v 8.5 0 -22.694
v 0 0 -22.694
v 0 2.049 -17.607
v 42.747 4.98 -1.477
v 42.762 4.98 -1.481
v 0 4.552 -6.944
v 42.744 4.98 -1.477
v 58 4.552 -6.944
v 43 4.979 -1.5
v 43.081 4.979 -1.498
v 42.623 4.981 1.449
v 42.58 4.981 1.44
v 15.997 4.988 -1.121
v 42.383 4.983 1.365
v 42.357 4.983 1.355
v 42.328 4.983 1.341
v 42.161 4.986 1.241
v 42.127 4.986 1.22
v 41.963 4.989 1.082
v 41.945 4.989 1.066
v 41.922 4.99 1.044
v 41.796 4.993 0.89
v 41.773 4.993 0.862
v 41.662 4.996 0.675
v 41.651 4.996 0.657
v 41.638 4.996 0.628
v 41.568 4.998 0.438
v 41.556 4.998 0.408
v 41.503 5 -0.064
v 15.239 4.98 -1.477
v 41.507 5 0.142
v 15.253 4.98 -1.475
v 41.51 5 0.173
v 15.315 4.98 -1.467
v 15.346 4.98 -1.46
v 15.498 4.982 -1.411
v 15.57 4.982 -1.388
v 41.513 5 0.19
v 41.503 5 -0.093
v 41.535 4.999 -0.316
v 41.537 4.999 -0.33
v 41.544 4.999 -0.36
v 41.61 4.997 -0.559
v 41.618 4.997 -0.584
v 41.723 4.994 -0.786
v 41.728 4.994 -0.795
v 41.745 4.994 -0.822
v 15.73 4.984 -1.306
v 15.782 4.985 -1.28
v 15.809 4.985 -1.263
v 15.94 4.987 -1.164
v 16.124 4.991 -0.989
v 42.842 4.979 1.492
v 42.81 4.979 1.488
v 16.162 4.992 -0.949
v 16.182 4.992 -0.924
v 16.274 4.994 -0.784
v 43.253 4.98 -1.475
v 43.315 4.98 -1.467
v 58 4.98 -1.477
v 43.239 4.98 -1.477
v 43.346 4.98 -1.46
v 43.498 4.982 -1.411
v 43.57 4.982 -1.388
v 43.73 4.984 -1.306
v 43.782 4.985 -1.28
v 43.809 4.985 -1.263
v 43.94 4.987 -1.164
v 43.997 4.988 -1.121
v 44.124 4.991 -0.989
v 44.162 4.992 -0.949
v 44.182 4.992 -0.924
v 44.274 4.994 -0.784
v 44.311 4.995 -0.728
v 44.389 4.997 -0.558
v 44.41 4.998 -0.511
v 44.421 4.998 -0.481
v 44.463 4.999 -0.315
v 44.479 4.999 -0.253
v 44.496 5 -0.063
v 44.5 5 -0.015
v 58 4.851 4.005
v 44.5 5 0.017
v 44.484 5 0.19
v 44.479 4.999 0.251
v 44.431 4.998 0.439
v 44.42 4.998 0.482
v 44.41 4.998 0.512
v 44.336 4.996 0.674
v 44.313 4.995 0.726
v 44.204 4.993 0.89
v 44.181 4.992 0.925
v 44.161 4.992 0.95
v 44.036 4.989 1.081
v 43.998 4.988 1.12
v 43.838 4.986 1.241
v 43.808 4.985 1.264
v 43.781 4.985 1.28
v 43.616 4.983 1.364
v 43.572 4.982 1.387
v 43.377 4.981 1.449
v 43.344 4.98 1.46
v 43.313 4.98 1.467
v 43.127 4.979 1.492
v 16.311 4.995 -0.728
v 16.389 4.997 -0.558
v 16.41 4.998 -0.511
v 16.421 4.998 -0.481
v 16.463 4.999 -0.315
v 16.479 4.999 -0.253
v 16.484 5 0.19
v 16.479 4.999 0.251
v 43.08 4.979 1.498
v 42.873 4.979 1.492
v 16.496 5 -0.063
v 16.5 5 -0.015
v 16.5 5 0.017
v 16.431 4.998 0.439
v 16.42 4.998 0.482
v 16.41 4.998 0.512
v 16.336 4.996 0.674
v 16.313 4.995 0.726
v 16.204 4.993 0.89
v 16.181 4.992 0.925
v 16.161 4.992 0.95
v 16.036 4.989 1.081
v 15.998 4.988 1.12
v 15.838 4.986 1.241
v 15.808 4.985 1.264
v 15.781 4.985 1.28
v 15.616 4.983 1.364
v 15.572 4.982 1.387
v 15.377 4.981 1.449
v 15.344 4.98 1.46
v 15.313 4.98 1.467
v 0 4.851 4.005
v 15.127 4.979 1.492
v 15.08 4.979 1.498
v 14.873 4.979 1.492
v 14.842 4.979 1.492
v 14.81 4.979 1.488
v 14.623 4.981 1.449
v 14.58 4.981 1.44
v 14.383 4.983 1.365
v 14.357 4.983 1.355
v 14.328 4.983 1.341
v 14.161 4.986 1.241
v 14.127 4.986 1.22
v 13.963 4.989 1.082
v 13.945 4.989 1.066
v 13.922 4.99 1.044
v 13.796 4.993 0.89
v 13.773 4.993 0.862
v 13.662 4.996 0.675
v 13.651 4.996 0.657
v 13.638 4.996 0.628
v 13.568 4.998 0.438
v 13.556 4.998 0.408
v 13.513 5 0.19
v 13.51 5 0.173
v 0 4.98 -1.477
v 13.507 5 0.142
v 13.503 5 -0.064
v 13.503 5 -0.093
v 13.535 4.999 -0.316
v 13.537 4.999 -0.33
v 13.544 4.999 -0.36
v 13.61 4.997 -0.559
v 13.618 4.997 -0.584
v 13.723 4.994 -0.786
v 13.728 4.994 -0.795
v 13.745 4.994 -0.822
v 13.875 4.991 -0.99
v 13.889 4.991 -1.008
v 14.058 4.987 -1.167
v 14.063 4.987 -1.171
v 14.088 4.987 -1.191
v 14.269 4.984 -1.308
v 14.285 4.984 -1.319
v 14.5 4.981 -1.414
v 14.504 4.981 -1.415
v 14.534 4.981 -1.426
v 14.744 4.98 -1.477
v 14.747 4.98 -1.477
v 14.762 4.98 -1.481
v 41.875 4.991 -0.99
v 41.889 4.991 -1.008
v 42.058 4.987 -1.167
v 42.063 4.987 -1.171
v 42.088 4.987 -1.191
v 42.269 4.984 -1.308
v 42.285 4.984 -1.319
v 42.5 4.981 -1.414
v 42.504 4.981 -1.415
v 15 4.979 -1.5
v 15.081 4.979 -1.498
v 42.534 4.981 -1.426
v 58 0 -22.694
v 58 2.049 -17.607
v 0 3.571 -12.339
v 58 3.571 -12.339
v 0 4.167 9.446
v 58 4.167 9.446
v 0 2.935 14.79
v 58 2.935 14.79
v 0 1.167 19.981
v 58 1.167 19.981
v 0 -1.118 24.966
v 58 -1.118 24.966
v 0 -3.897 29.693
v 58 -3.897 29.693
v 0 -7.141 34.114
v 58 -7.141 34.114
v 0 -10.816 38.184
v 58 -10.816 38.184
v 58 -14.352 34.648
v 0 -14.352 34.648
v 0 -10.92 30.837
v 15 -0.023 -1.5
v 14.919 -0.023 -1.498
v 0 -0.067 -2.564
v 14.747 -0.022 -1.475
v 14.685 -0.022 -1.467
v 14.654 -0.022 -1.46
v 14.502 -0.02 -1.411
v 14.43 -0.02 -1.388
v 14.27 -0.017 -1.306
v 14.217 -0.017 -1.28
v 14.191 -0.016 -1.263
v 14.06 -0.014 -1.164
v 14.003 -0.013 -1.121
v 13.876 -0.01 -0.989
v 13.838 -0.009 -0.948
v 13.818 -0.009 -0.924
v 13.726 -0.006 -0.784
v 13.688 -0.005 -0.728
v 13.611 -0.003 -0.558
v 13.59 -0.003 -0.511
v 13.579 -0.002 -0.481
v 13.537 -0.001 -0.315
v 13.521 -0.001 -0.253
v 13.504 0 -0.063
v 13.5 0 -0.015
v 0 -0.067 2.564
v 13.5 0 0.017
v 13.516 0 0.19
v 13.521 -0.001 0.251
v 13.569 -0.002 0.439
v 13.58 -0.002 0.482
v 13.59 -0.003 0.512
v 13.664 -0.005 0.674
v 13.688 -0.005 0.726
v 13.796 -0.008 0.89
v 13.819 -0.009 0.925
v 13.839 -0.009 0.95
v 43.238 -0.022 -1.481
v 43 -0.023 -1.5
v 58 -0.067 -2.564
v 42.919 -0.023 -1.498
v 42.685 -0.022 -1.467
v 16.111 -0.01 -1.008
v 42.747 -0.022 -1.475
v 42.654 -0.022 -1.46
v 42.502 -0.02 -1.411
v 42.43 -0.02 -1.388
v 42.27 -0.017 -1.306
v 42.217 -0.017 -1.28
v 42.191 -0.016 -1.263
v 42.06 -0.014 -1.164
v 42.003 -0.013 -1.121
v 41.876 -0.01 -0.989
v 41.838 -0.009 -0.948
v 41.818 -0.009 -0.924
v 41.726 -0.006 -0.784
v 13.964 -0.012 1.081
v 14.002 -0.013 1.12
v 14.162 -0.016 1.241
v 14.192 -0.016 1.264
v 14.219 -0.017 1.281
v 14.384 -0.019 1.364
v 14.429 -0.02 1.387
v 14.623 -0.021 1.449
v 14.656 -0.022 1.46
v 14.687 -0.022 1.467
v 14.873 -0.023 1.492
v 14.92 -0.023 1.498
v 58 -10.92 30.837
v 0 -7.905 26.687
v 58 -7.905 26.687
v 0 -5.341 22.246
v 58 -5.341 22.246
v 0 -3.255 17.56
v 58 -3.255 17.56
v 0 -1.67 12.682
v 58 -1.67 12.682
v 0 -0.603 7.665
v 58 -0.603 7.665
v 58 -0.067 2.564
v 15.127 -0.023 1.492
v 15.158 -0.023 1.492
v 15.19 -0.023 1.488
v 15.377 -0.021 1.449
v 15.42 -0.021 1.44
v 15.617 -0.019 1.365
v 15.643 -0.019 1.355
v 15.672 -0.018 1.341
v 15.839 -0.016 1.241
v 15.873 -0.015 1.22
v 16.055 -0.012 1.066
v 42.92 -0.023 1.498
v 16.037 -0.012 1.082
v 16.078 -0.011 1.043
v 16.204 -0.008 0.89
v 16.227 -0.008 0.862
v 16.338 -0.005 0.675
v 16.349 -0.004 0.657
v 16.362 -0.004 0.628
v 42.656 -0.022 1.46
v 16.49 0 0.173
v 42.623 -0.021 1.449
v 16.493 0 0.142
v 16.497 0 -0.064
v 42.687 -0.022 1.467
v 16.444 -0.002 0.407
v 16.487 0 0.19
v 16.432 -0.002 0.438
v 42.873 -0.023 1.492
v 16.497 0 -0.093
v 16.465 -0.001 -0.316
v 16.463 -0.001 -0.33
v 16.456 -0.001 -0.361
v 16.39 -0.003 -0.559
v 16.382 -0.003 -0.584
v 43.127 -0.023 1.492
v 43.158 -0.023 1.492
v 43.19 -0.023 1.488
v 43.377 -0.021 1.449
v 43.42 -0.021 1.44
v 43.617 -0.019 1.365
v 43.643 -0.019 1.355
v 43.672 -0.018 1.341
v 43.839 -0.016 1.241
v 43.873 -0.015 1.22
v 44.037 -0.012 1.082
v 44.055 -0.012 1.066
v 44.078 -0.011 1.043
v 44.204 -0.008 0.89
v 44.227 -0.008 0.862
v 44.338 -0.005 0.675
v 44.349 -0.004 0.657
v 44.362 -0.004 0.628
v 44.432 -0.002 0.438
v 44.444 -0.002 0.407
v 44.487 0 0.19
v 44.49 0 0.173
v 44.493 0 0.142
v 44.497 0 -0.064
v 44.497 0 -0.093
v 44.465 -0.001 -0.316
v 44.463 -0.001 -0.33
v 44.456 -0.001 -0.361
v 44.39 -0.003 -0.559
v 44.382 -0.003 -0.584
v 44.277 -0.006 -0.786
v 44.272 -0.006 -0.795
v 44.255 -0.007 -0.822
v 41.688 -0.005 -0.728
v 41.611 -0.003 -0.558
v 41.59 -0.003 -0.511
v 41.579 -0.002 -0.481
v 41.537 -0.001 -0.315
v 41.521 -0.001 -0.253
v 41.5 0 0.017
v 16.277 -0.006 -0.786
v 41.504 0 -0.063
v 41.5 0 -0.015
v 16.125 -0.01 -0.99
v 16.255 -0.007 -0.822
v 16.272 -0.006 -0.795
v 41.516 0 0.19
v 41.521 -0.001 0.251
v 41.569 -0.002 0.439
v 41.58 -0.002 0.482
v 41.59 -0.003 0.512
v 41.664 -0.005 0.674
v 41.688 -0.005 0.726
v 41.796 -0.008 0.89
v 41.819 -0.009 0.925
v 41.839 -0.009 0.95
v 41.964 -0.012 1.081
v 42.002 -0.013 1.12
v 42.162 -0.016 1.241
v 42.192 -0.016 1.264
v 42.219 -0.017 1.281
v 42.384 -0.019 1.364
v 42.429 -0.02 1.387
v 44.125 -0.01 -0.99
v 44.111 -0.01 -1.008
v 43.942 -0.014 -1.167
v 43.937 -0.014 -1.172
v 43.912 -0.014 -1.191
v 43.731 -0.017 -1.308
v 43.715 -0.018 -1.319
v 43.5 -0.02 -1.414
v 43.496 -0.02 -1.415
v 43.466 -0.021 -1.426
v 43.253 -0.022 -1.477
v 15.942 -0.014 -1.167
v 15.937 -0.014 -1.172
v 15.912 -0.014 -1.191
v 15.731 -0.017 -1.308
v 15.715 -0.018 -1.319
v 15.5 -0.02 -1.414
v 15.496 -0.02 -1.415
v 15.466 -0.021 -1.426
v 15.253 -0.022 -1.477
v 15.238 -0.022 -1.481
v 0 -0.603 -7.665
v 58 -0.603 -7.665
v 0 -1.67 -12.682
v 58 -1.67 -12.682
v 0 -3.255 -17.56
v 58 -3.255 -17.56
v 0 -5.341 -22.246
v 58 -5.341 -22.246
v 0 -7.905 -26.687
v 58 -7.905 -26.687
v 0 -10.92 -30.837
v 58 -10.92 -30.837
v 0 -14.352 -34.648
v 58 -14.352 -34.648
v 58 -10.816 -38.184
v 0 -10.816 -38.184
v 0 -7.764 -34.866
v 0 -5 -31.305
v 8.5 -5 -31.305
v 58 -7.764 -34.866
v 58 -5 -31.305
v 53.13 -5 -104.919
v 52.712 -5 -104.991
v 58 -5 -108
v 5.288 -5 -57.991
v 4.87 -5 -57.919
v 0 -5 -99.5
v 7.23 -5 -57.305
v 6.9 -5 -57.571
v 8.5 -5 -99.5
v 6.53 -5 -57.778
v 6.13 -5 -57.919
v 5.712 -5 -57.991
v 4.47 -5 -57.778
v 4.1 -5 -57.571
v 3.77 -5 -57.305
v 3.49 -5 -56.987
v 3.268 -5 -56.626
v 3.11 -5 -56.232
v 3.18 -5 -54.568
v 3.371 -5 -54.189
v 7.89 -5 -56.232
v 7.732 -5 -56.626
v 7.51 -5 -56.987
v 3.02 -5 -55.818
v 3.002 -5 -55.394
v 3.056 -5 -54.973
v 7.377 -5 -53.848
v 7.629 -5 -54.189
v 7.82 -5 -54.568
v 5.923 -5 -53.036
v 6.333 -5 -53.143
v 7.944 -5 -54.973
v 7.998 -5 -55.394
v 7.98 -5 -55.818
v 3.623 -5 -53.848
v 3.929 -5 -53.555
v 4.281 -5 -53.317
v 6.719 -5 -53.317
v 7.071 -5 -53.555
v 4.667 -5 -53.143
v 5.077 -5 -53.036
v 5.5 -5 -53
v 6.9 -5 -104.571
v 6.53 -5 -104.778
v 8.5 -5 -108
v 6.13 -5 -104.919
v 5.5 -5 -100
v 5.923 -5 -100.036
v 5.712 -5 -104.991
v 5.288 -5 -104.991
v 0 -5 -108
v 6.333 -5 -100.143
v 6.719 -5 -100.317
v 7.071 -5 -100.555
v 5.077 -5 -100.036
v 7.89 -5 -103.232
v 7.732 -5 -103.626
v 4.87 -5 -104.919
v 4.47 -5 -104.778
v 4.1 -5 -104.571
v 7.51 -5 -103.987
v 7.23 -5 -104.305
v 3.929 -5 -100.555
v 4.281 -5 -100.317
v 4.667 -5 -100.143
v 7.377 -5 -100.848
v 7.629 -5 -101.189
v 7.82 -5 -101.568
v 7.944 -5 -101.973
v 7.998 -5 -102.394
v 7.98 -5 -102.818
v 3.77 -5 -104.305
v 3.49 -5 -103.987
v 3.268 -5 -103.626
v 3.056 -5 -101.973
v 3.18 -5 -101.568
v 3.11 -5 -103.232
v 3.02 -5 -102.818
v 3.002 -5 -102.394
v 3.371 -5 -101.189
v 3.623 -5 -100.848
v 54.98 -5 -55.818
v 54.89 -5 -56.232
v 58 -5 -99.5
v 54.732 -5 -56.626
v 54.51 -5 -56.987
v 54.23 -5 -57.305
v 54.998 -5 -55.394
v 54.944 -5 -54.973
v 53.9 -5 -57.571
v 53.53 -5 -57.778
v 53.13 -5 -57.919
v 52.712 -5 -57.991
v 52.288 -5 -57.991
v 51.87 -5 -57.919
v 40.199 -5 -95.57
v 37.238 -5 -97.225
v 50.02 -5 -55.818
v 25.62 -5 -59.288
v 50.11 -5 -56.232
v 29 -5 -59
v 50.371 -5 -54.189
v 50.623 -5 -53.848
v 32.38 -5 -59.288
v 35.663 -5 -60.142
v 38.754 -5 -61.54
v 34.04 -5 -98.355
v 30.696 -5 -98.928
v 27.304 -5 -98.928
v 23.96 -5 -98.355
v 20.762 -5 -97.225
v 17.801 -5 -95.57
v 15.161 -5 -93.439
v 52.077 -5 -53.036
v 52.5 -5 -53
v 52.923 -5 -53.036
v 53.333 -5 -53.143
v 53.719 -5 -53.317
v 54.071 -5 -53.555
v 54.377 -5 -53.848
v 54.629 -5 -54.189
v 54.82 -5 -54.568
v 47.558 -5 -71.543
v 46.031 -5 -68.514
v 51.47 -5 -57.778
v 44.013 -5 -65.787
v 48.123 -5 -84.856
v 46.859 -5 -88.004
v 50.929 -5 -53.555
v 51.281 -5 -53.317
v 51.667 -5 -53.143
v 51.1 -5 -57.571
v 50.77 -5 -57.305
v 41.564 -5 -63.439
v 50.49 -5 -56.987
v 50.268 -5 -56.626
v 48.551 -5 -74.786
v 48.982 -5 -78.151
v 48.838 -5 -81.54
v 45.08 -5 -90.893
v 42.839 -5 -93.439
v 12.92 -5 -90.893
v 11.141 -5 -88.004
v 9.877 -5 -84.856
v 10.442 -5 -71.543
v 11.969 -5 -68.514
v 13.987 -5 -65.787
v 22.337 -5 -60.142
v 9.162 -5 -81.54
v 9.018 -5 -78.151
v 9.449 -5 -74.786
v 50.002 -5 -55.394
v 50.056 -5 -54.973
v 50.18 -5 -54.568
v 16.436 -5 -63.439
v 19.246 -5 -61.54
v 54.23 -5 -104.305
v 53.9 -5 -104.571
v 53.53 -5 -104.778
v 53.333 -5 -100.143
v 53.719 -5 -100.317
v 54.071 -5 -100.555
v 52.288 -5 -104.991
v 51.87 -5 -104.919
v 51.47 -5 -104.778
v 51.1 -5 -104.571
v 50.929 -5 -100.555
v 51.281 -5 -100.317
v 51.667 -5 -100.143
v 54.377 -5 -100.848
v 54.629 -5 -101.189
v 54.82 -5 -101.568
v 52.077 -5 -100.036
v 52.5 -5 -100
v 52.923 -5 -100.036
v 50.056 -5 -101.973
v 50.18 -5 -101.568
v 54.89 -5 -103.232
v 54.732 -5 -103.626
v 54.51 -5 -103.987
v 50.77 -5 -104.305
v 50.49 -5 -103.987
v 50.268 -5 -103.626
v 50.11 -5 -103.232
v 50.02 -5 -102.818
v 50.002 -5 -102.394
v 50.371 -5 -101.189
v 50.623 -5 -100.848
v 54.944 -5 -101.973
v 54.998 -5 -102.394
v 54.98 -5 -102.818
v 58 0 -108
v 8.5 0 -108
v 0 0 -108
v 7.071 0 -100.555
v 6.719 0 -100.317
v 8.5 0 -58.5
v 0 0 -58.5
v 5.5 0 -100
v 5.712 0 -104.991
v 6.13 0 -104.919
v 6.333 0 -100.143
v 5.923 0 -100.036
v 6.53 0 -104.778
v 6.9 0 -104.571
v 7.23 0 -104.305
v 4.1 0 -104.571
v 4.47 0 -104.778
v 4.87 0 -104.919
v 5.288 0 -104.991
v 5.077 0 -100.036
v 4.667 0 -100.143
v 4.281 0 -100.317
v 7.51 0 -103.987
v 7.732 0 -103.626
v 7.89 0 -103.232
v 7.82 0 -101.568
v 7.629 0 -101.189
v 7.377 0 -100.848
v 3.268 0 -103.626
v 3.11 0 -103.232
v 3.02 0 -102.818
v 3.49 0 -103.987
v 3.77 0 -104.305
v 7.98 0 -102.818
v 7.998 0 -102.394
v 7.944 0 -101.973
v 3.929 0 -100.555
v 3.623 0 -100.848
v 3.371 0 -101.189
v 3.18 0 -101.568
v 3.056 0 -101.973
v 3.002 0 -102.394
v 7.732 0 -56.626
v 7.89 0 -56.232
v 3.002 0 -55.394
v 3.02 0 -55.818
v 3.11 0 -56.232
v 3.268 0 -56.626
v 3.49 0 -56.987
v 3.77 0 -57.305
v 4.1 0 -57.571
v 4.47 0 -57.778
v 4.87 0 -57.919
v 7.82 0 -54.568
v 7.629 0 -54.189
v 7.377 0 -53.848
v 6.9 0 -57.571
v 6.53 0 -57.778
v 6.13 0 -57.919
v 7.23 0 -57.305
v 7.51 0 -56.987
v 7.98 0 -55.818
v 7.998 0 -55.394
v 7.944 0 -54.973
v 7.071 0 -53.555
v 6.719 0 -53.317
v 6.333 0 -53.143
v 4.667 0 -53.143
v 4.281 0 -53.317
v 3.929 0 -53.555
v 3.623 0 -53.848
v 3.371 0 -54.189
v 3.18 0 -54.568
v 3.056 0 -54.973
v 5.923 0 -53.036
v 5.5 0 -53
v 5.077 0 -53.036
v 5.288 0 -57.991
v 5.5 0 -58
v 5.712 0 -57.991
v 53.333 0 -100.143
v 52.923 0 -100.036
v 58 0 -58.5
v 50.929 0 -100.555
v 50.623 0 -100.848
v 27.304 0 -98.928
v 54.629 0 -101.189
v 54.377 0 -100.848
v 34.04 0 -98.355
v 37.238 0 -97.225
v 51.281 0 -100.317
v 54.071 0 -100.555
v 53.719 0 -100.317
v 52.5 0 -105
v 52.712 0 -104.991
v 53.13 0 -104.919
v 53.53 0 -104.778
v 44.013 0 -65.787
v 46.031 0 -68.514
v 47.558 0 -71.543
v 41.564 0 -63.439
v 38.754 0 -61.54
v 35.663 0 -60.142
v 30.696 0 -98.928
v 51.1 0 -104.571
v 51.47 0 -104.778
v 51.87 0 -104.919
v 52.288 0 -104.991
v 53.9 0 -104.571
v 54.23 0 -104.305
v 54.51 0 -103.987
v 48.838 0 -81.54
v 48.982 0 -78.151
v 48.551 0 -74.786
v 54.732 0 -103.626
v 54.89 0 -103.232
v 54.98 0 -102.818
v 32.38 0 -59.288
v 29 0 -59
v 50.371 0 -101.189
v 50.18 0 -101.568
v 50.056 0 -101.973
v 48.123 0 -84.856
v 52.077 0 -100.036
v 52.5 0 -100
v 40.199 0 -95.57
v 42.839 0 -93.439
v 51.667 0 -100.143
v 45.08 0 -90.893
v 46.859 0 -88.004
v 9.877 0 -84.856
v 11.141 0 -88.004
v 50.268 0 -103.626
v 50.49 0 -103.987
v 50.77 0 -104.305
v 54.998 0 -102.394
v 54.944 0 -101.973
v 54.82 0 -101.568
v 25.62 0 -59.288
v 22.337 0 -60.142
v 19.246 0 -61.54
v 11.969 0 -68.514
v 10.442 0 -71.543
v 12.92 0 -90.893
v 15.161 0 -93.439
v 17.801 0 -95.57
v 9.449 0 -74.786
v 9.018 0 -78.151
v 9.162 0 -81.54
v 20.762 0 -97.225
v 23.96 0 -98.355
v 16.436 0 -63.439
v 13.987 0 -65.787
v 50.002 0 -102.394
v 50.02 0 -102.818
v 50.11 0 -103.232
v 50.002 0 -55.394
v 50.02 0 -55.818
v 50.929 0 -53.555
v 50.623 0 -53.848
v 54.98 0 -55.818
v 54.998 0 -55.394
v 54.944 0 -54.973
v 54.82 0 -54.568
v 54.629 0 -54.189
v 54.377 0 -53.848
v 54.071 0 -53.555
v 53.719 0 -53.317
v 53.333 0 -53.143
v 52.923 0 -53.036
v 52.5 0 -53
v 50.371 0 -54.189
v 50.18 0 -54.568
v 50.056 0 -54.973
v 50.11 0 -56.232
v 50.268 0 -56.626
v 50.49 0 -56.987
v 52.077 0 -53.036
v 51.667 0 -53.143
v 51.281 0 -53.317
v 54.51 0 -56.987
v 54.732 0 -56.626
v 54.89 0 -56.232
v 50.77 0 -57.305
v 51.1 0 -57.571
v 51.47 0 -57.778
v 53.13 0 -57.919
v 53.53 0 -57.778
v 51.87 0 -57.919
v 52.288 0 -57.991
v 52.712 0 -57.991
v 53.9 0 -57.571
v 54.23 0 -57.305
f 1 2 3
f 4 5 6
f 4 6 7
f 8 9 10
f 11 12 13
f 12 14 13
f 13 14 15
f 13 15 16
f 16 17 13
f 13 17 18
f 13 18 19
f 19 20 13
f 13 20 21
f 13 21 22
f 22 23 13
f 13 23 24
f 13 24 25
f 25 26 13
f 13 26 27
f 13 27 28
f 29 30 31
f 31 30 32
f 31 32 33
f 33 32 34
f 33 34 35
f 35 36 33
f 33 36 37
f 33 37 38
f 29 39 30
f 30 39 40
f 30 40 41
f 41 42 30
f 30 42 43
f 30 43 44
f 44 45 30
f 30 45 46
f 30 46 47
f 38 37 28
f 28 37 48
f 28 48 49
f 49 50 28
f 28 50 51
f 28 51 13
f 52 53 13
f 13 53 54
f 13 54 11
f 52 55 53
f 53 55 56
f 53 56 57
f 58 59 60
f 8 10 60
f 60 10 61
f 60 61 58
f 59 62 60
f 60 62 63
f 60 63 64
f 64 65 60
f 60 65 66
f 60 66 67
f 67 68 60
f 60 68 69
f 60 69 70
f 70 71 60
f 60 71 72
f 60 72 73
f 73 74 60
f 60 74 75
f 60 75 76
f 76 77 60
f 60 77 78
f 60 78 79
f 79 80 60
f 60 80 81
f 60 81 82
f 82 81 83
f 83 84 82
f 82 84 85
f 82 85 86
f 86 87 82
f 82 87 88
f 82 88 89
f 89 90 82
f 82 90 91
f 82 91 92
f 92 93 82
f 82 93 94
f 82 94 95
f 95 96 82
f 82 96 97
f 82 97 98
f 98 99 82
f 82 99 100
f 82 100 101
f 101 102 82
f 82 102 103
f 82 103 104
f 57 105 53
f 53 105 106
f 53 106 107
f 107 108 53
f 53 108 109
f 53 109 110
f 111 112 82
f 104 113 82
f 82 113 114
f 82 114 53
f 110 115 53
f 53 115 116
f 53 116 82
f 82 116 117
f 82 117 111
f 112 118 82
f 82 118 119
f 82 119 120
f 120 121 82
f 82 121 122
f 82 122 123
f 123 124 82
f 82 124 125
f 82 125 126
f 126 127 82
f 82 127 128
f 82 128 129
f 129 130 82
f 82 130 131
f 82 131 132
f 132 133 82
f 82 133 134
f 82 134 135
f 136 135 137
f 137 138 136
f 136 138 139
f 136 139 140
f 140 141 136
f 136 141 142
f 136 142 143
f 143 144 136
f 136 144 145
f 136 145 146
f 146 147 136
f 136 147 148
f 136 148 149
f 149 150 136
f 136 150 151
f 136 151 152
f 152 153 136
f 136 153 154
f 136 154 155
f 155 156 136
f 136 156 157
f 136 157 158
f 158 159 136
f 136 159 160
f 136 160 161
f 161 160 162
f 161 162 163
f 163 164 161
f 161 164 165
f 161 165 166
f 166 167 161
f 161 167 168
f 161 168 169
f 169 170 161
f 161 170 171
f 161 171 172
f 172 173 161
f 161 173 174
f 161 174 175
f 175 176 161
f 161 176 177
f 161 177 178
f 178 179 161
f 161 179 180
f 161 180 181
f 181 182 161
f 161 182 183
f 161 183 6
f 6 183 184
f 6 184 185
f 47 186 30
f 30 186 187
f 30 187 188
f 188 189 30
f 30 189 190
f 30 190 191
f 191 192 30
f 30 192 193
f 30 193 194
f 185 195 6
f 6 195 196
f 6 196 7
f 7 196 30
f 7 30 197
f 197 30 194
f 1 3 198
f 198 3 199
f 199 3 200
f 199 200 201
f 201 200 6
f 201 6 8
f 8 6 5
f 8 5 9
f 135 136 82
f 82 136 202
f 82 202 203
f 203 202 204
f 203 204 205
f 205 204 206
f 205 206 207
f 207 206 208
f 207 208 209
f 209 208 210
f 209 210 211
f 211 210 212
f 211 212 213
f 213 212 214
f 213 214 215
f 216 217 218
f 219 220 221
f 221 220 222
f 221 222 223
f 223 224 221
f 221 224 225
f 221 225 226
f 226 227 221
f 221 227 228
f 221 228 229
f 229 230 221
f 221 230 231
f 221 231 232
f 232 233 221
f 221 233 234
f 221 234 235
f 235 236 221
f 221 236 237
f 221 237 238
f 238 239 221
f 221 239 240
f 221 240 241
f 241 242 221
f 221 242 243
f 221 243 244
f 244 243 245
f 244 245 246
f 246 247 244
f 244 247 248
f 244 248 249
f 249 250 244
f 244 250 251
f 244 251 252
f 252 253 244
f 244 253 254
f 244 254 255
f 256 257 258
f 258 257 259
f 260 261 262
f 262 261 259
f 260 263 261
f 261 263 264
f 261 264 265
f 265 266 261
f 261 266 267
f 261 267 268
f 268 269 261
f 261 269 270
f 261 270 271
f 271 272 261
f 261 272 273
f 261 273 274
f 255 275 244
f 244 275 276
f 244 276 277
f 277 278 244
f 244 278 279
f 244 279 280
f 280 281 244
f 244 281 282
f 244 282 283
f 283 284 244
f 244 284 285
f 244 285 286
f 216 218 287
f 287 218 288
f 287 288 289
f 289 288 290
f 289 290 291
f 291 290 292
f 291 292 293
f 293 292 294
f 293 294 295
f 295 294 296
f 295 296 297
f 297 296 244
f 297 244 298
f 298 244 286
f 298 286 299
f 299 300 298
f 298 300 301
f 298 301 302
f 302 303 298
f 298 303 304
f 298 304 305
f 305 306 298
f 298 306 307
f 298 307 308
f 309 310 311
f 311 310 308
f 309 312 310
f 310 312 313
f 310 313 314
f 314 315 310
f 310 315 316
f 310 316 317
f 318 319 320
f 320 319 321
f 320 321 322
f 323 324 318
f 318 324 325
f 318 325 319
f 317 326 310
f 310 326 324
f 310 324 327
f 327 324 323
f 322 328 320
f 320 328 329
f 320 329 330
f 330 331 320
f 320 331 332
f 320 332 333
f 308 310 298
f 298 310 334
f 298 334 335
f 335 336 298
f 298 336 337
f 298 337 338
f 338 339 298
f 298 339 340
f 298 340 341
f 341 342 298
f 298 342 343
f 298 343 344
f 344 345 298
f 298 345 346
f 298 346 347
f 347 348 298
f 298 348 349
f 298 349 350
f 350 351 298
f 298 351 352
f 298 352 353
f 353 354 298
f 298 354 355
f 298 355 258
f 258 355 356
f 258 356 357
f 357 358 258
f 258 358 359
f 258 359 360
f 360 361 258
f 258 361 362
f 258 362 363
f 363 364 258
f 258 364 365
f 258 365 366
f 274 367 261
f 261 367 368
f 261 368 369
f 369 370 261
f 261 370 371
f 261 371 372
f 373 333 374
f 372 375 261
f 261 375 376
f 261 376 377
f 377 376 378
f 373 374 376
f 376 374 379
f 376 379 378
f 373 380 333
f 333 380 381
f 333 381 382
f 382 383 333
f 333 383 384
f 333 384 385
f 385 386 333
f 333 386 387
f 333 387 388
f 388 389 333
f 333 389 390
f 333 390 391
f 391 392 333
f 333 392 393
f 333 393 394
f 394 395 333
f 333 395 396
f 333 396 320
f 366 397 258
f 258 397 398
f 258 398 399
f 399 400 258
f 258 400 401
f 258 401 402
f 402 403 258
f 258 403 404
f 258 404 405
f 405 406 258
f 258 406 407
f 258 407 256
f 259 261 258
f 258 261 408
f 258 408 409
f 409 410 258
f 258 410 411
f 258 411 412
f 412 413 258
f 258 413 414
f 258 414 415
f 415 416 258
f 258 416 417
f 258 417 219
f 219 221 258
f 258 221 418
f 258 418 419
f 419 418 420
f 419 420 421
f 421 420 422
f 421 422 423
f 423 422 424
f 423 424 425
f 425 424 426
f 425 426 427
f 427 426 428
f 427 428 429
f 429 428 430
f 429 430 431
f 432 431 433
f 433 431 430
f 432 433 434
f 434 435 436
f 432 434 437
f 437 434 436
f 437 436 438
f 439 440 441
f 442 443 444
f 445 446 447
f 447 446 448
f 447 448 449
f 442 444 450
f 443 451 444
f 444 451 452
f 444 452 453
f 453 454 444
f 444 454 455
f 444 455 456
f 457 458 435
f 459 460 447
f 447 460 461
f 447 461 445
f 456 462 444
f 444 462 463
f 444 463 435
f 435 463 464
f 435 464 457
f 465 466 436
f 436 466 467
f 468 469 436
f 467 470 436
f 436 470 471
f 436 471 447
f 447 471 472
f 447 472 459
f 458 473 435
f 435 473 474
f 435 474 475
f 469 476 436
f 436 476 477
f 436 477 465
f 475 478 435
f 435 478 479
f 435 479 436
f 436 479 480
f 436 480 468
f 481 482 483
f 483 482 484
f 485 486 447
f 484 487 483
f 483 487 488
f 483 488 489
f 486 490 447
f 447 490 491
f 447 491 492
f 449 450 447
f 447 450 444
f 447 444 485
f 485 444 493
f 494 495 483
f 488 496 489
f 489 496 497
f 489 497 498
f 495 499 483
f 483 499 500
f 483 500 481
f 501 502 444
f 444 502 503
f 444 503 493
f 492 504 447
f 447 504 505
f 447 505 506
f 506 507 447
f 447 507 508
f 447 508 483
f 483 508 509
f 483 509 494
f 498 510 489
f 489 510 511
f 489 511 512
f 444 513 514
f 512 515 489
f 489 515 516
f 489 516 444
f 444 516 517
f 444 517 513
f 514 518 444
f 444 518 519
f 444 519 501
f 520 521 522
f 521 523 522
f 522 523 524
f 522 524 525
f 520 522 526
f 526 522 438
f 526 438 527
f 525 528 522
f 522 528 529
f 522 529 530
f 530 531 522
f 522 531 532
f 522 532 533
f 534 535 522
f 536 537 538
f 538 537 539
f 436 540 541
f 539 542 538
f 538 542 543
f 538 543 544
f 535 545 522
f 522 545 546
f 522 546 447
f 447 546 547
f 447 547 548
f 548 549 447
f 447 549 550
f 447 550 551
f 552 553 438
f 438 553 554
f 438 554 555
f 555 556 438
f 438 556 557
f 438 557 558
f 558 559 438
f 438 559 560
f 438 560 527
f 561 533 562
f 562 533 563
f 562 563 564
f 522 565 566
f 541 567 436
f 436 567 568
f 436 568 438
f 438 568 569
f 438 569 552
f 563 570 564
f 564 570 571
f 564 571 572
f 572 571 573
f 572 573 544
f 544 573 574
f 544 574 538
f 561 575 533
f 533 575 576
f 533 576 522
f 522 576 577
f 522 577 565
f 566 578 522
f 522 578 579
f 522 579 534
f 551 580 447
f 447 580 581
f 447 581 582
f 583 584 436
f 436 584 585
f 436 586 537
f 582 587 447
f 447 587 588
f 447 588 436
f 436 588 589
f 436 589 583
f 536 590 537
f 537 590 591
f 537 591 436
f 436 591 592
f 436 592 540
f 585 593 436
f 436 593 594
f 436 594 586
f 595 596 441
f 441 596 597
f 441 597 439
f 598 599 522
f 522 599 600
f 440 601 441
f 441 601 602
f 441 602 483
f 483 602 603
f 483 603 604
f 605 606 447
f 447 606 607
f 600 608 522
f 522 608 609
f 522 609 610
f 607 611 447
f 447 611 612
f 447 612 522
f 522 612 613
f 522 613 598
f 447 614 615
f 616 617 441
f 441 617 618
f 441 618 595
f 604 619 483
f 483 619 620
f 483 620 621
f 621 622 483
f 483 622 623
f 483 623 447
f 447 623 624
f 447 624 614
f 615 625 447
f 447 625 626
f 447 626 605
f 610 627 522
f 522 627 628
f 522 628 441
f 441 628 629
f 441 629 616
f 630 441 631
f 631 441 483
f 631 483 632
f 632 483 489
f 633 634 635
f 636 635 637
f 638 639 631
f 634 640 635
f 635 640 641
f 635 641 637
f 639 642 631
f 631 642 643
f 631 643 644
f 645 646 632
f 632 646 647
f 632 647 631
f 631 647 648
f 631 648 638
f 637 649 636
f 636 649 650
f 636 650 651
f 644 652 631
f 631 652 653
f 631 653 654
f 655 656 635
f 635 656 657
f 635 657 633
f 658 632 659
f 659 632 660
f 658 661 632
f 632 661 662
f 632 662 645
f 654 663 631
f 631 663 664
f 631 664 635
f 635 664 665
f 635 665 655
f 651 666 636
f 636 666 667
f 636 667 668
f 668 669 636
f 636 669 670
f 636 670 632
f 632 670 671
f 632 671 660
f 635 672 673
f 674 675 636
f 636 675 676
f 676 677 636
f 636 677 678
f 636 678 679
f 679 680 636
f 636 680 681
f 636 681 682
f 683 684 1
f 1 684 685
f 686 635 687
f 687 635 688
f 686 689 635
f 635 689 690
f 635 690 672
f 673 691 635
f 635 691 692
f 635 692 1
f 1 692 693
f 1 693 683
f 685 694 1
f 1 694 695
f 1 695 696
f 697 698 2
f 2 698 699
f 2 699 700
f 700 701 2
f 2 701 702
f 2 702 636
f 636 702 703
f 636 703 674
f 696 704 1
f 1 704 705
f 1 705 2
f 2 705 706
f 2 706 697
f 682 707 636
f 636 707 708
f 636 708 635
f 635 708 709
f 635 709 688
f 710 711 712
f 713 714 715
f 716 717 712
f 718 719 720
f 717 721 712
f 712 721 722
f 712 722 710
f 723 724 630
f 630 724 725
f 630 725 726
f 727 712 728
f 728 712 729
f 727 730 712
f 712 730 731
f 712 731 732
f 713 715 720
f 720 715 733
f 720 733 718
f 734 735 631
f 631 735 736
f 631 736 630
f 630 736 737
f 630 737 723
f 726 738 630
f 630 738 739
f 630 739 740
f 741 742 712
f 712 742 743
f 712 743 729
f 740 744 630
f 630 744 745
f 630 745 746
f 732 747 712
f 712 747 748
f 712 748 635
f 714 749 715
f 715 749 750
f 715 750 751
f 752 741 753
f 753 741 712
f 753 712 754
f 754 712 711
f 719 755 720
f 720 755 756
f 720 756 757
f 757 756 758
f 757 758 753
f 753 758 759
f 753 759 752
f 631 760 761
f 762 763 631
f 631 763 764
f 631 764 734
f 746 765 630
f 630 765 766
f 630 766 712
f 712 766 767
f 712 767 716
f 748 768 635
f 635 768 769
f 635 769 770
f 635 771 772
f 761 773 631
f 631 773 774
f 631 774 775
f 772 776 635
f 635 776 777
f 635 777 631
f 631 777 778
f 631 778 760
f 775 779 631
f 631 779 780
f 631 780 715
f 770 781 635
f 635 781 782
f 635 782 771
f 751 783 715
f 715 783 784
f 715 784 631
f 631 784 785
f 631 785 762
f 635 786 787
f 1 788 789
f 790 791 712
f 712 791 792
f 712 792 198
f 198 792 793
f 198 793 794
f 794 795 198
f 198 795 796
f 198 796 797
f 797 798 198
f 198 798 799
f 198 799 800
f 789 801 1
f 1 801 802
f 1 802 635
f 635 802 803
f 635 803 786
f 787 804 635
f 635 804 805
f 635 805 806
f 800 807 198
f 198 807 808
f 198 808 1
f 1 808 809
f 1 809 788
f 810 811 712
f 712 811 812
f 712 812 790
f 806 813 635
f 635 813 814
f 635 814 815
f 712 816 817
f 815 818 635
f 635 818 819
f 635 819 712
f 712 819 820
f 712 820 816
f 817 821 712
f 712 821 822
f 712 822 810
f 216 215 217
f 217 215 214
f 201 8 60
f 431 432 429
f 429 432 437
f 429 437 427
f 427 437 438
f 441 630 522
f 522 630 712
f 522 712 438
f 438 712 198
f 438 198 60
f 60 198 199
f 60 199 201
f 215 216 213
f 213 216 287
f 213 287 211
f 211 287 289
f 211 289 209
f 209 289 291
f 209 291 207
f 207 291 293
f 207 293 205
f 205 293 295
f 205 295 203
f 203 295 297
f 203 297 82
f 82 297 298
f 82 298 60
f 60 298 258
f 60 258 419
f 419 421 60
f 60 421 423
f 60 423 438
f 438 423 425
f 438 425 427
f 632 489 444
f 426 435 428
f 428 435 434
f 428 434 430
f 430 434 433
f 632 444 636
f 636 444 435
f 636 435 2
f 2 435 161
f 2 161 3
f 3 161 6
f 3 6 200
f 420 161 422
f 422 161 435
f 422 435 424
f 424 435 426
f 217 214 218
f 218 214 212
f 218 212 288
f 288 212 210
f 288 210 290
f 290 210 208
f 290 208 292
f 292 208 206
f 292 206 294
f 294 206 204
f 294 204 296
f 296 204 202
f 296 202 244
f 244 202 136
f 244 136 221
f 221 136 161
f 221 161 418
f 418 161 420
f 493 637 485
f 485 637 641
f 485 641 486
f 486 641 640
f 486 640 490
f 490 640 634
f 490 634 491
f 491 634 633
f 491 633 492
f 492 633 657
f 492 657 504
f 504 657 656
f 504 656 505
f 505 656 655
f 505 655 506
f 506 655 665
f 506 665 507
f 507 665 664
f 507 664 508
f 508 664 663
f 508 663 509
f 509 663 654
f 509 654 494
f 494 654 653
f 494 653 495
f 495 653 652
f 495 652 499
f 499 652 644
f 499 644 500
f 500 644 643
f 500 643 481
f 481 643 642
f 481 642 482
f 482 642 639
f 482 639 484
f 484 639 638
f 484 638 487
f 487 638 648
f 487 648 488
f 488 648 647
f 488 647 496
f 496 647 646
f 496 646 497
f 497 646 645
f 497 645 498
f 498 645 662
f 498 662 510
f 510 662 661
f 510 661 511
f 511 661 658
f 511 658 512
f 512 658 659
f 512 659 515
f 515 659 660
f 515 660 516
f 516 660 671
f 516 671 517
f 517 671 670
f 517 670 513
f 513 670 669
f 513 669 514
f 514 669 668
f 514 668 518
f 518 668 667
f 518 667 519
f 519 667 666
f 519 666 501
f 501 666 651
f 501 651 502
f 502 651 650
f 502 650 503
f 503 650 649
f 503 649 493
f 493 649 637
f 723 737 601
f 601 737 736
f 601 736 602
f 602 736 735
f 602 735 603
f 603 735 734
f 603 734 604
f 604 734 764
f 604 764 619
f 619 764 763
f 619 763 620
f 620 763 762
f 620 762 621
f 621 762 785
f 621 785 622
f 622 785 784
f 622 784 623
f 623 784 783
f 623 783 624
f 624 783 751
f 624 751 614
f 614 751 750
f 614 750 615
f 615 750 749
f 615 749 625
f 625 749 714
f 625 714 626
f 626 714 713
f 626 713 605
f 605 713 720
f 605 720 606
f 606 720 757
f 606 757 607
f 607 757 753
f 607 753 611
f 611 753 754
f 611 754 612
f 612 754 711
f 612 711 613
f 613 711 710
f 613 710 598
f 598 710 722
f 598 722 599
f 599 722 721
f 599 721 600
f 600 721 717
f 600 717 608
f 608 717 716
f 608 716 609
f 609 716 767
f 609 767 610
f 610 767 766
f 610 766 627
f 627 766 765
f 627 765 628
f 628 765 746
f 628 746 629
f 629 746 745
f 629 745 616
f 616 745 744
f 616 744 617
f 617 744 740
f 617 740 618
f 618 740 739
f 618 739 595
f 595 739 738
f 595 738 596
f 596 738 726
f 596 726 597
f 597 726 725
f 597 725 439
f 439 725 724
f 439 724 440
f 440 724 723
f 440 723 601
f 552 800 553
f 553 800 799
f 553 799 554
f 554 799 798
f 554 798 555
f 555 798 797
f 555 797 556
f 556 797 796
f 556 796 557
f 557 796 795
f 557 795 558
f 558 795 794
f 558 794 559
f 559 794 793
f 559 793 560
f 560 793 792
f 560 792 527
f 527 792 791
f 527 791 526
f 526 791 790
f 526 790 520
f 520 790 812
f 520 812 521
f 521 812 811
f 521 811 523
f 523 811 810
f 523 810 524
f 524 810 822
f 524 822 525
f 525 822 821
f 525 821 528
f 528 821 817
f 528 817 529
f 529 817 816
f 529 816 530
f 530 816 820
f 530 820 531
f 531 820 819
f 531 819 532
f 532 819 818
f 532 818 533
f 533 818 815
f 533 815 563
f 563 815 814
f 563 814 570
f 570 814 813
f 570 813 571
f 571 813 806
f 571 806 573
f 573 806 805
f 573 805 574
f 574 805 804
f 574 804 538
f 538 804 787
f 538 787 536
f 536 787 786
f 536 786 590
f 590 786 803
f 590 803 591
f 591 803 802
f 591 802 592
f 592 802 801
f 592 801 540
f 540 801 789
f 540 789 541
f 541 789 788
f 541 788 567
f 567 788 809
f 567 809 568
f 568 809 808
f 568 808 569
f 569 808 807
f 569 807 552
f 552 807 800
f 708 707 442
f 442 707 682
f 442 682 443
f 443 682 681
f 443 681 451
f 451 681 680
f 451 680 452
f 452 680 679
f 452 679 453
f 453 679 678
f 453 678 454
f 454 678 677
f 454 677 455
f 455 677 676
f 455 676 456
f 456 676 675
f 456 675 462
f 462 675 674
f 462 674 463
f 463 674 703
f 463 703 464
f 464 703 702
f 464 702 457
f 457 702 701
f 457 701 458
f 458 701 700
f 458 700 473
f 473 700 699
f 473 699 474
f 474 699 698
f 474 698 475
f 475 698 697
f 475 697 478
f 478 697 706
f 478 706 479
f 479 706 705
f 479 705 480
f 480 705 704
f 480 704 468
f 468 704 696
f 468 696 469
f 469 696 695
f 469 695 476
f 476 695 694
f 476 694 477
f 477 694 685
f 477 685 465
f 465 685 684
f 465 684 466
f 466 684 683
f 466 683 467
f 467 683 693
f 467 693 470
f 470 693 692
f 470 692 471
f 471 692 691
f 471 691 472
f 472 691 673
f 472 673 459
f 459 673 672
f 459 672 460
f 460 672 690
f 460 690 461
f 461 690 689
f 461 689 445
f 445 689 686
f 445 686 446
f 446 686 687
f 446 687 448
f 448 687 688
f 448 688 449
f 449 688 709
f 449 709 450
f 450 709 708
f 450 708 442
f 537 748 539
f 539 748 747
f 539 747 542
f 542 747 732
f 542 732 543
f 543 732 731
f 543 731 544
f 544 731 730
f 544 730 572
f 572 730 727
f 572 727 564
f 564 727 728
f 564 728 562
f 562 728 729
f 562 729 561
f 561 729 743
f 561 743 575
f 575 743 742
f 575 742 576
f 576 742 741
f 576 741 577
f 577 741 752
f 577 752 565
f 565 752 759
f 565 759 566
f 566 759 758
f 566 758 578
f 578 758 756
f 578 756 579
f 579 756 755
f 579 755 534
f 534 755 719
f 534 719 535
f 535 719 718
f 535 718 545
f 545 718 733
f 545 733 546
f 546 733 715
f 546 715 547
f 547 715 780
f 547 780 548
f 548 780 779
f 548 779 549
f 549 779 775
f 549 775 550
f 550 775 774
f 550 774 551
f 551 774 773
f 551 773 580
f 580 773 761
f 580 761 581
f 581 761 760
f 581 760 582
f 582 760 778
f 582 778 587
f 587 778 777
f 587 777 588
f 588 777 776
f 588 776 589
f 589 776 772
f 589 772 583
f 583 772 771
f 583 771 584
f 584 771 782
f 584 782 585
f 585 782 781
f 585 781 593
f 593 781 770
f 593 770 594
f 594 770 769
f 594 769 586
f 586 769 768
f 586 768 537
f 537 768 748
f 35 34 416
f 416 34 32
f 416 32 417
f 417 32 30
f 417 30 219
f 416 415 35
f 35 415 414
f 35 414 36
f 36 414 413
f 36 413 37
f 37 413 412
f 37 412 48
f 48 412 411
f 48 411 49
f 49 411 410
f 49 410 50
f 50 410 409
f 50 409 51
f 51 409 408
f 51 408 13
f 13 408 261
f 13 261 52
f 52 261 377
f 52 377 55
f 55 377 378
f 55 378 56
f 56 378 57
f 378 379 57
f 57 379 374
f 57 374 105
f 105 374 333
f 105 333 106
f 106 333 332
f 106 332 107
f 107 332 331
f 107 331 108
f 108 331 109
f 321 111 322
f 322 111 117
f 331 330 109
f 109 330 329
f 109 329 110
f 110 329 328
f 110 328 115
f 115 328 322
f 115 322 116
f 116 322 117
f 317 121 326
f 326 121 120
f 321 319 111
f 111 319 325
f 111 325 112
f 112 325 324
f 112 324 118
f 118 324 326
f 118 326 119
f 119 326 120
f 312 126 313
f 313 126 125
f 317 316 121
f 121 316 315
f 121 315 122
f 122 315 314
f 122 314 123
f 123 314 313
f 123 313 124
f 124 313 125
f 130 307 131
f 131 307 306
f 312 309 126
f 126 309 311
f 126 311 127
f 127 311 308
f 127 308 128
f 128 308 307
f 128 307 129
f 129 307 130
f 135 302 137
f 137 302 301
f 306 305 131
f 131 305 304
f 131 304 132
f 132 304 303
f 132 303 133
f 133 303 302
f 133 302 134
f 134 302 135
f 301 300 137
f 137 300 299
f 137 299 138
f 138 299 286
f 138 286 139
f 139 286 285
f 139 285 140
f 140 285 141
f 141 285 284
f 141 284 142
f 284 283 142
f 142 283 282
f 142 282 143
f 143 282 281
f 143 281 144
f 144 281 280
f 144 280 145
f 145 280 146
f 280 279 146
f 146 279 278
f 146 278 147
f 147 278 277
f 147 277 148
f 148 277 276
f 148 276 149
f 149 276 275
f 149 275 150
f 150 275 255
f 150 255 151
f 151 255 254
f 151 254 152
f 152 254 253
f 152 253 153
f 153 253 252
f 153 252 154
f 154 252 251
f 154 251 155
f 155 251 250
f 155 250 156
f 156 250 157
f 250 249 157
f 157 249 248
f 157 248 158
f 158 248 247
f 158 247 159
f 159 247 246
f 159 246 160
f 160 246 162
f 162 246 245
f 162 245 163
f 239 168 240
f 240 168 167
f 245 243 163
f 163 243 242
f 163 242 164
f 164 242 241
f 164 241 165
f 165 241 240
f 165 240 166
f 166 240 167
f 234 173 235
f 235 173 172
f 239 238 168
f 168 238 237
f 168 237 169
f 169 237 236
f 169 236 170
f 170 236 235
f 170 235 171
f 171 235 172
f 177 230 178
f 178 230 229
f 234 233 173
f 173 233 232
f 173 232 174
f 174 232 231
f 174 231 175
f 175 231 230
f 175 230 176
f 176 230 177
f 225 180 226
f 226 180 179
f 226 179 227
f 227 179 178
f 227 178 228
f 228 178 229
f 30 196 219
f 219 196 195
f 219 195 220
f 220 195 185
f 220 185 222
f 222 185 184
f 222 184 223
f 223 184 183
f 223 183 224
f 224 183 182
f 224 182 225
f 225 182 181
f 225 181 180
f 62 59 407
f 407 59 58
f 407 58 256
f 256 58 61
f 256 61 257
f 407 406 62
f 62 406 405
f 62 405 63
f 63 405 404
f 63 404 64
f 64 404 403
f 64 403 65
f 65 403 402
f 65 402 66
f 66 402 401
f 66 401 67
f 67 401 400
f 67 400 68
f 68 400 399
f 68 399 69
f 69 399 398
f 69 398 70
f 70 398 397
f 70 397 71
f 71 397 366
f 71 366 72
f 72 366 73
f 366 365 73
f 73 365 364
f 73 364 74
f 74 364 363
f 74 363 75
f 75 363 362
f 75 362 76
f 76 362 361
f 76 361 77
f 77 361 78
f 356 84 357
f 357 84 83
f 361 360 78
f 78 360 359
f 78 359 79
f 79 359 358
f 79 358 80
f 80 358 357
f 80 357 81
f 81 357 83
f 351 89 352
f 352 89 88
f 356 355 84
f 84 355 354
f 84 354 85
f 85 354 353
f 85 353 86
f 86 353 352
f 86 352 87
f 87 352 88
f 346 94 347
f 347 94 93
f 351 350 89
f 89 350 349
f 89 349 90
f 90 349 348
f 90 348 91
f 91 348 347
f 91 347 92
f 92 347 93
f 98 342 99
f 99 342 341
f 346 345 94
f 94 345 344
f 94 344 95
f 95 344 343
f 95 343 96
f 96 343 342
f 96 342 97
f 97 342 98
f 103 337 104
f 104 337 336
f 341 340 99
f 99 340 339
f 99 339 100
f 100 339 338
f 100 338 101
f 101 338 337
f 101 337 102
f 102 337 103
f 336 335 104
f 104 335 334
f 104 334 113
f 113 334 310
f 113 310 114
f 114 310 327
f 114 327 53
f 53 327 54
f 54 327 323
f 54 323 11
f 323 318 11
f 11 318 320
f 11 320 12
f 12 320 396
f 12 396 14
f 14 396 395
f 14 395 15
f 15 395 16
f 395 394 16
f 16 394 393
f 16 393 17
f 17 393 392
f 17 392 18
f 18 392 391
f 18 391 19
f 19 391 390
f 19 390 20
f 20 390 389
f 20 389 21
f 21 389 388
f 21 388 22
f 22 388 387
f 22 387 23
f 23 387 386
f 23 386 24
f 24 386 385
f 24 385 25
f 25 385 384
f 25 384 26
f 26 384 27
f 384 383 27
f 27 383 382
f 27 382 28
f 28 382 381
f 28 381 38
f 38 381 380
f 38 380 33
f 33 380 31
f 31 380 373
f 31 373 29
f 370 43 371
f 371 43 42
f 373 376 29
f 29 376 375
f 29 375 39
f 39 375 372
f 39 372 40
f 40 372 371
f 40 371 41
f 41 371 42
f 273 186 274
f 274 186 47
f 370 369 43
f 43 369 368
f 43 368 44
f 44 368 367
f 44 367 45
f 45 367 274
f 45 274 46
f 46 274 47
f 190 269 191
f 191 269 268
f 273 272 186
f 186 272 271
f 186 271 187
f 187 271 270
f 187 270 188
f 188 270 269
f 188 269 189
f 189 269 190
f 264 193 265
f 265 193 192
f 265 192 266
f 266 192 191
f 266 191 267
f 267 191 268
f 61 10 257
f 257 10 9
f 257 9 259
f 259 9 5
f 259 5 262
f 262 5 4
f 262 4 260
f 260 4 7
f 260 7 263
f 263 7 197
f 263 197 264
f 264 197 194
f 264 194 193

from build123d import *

# Parameters (mm, degrees)
BOSS_EXTRUDE2_DEPTH     = 58
SKETCH6_R               = 2.5
SKETCH6_R_2             = 20
CUT_EXTRUDE3_DEPTH      = 58
CUT_EXTRUDE4_DEPTH      = 58
CUT_EXTRUDE4_DEPTH_BACK = 58
SKETCH7_R               = 1.5


with BuildPart() as part:
    # Sketch5 → Boss-Extrude2 (new body)
    with BuildSketch(Plane(origin=(0, 0, 0), x_dir=(0, 0, -1), z_dir=(1, 0, 0))):
        with BuildLine():
            Line((108, 0), (108, -5))
            Line((108, -5), (31.304951685, -5))
            ThreePointArc((31.304951685, -5), (34.8658518, -7.764428241), (38.183766184, -10.816233816))
            Line((38.183766184, -10.816233816), (34.648232278, -14.351767722))
            ThreePointArc((34.648232278, -14.351767722), (18.751488186, -3.729902907), (0, 0))
            ThreePointArc((0, 0), (-18.751488186, -3.729902907), (-34.648232278, -14.351767722))
            Line((-34.648232278, -14.351767722), (-38.183766184, -10.816233816))
            ThreePointArc((-38.183766184, -10.816233816), (-20.664905348, 0.889494756), (0, 5))
            ThreePointArc((0, 5), (11.618950039, 3.735187494), (22.693611436, 0))
            Line((22.693611436, 0), (108, 0))
        make_face()
    extrude(amount=BOSS_EXTRUDE2_DEPTH)

    # Sketch6 → Cut-Extrude3 (cut)
    with BuildSketch(Plane(origin=(0, 0, 0), x_dir=(1, 0, 0), z_dir=(0, 1, 0))):
        with Locations((5.5, 102.5)):
            Circle(SKETCH6_R)
        with Locations((52.5, 102.5)):
            Circle(SKETCH6_R)
        with Locations((52.5, 55.5)):
            Circle(SKETCH6_R)
        with Locations((5.5, 55.5)):
            Circle(SKETCH6_R)
        with Locations((29, 79)):
            Circle(SKETCH6_R_2)
    extrude(amount=-CUT_EXTRUDE3_DEPTH, mode=Mode.SUBTRACT)

    # Sketch7 → Cut-Extrude4 (cut, two sides: drawn at the far end of the back side and taken through both)
    with BuildSketch(Plane(origin=(0, 0, 0), x_dir=(1, 0, 0), z_dir=(0, 1, 0)).offset(-CUT_EXTRUDE4_DEPTH_BACK)):
        with Locations((15, 0)):
            Circle(SKETCH7_R)
        with Locations((43, 0)):
            Circle(SKETCH7_R)
    extrude(amount=CUT_EXTRUDE4_DEPTH + CUT_EXTRUDE4_DEPTH_BACK, mode=Mode.SUBTRACT)


solid = part.part
